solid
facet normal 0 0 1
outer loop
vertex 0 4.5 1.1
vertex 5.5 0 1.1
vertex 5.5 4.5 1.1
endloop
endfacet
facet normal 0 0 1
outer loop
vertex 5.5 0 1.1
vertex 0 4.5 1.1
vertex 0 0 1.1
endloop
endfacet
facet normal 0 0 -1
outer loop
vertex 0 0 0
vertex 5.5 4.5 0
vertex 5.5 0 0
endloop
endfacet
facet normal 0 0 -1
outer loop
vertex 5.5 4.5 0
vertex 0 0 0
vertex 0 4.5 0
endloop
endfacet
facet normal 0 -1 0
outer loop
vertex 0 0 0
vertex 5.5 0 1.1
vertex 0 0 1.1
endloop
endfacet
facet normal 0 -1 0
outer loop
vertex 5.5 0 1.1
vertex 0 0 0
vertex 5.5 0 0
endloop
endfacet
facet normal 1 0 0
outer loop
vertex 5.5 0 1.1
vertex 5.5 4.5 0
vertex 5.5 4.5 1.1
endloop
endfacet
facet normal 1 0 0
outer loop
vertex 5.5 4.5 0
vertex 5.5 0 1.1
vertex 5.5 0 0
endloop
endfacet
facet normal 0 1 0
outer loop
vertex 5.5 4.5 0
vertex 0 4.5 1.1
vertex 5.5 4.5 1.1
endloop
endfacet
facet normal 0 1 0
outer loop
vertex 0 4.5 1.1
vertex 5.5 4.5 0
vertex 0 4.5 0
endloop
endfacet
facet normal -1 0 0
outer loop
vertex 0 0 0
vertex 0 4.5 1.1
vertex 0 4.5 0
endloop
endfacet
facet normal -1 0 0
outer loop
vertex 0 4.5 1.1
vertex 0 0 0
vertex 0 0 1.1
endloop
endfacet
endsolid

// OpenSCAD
/* Warning, this is a very basic generator with a lot of approximation 
input data : [TFBGA, KMX, 5.5x4.5x1.1mm, 60, , A, C04-00464A]
generated by com.zoubworld.electronics.cad.model3d.Basic
Date : Sun Feb 15 10:50:48 CET 2026
*/

//body
color("black")
translate([0,0,0])
cube([5.5,4.5,1.1], center=false);
